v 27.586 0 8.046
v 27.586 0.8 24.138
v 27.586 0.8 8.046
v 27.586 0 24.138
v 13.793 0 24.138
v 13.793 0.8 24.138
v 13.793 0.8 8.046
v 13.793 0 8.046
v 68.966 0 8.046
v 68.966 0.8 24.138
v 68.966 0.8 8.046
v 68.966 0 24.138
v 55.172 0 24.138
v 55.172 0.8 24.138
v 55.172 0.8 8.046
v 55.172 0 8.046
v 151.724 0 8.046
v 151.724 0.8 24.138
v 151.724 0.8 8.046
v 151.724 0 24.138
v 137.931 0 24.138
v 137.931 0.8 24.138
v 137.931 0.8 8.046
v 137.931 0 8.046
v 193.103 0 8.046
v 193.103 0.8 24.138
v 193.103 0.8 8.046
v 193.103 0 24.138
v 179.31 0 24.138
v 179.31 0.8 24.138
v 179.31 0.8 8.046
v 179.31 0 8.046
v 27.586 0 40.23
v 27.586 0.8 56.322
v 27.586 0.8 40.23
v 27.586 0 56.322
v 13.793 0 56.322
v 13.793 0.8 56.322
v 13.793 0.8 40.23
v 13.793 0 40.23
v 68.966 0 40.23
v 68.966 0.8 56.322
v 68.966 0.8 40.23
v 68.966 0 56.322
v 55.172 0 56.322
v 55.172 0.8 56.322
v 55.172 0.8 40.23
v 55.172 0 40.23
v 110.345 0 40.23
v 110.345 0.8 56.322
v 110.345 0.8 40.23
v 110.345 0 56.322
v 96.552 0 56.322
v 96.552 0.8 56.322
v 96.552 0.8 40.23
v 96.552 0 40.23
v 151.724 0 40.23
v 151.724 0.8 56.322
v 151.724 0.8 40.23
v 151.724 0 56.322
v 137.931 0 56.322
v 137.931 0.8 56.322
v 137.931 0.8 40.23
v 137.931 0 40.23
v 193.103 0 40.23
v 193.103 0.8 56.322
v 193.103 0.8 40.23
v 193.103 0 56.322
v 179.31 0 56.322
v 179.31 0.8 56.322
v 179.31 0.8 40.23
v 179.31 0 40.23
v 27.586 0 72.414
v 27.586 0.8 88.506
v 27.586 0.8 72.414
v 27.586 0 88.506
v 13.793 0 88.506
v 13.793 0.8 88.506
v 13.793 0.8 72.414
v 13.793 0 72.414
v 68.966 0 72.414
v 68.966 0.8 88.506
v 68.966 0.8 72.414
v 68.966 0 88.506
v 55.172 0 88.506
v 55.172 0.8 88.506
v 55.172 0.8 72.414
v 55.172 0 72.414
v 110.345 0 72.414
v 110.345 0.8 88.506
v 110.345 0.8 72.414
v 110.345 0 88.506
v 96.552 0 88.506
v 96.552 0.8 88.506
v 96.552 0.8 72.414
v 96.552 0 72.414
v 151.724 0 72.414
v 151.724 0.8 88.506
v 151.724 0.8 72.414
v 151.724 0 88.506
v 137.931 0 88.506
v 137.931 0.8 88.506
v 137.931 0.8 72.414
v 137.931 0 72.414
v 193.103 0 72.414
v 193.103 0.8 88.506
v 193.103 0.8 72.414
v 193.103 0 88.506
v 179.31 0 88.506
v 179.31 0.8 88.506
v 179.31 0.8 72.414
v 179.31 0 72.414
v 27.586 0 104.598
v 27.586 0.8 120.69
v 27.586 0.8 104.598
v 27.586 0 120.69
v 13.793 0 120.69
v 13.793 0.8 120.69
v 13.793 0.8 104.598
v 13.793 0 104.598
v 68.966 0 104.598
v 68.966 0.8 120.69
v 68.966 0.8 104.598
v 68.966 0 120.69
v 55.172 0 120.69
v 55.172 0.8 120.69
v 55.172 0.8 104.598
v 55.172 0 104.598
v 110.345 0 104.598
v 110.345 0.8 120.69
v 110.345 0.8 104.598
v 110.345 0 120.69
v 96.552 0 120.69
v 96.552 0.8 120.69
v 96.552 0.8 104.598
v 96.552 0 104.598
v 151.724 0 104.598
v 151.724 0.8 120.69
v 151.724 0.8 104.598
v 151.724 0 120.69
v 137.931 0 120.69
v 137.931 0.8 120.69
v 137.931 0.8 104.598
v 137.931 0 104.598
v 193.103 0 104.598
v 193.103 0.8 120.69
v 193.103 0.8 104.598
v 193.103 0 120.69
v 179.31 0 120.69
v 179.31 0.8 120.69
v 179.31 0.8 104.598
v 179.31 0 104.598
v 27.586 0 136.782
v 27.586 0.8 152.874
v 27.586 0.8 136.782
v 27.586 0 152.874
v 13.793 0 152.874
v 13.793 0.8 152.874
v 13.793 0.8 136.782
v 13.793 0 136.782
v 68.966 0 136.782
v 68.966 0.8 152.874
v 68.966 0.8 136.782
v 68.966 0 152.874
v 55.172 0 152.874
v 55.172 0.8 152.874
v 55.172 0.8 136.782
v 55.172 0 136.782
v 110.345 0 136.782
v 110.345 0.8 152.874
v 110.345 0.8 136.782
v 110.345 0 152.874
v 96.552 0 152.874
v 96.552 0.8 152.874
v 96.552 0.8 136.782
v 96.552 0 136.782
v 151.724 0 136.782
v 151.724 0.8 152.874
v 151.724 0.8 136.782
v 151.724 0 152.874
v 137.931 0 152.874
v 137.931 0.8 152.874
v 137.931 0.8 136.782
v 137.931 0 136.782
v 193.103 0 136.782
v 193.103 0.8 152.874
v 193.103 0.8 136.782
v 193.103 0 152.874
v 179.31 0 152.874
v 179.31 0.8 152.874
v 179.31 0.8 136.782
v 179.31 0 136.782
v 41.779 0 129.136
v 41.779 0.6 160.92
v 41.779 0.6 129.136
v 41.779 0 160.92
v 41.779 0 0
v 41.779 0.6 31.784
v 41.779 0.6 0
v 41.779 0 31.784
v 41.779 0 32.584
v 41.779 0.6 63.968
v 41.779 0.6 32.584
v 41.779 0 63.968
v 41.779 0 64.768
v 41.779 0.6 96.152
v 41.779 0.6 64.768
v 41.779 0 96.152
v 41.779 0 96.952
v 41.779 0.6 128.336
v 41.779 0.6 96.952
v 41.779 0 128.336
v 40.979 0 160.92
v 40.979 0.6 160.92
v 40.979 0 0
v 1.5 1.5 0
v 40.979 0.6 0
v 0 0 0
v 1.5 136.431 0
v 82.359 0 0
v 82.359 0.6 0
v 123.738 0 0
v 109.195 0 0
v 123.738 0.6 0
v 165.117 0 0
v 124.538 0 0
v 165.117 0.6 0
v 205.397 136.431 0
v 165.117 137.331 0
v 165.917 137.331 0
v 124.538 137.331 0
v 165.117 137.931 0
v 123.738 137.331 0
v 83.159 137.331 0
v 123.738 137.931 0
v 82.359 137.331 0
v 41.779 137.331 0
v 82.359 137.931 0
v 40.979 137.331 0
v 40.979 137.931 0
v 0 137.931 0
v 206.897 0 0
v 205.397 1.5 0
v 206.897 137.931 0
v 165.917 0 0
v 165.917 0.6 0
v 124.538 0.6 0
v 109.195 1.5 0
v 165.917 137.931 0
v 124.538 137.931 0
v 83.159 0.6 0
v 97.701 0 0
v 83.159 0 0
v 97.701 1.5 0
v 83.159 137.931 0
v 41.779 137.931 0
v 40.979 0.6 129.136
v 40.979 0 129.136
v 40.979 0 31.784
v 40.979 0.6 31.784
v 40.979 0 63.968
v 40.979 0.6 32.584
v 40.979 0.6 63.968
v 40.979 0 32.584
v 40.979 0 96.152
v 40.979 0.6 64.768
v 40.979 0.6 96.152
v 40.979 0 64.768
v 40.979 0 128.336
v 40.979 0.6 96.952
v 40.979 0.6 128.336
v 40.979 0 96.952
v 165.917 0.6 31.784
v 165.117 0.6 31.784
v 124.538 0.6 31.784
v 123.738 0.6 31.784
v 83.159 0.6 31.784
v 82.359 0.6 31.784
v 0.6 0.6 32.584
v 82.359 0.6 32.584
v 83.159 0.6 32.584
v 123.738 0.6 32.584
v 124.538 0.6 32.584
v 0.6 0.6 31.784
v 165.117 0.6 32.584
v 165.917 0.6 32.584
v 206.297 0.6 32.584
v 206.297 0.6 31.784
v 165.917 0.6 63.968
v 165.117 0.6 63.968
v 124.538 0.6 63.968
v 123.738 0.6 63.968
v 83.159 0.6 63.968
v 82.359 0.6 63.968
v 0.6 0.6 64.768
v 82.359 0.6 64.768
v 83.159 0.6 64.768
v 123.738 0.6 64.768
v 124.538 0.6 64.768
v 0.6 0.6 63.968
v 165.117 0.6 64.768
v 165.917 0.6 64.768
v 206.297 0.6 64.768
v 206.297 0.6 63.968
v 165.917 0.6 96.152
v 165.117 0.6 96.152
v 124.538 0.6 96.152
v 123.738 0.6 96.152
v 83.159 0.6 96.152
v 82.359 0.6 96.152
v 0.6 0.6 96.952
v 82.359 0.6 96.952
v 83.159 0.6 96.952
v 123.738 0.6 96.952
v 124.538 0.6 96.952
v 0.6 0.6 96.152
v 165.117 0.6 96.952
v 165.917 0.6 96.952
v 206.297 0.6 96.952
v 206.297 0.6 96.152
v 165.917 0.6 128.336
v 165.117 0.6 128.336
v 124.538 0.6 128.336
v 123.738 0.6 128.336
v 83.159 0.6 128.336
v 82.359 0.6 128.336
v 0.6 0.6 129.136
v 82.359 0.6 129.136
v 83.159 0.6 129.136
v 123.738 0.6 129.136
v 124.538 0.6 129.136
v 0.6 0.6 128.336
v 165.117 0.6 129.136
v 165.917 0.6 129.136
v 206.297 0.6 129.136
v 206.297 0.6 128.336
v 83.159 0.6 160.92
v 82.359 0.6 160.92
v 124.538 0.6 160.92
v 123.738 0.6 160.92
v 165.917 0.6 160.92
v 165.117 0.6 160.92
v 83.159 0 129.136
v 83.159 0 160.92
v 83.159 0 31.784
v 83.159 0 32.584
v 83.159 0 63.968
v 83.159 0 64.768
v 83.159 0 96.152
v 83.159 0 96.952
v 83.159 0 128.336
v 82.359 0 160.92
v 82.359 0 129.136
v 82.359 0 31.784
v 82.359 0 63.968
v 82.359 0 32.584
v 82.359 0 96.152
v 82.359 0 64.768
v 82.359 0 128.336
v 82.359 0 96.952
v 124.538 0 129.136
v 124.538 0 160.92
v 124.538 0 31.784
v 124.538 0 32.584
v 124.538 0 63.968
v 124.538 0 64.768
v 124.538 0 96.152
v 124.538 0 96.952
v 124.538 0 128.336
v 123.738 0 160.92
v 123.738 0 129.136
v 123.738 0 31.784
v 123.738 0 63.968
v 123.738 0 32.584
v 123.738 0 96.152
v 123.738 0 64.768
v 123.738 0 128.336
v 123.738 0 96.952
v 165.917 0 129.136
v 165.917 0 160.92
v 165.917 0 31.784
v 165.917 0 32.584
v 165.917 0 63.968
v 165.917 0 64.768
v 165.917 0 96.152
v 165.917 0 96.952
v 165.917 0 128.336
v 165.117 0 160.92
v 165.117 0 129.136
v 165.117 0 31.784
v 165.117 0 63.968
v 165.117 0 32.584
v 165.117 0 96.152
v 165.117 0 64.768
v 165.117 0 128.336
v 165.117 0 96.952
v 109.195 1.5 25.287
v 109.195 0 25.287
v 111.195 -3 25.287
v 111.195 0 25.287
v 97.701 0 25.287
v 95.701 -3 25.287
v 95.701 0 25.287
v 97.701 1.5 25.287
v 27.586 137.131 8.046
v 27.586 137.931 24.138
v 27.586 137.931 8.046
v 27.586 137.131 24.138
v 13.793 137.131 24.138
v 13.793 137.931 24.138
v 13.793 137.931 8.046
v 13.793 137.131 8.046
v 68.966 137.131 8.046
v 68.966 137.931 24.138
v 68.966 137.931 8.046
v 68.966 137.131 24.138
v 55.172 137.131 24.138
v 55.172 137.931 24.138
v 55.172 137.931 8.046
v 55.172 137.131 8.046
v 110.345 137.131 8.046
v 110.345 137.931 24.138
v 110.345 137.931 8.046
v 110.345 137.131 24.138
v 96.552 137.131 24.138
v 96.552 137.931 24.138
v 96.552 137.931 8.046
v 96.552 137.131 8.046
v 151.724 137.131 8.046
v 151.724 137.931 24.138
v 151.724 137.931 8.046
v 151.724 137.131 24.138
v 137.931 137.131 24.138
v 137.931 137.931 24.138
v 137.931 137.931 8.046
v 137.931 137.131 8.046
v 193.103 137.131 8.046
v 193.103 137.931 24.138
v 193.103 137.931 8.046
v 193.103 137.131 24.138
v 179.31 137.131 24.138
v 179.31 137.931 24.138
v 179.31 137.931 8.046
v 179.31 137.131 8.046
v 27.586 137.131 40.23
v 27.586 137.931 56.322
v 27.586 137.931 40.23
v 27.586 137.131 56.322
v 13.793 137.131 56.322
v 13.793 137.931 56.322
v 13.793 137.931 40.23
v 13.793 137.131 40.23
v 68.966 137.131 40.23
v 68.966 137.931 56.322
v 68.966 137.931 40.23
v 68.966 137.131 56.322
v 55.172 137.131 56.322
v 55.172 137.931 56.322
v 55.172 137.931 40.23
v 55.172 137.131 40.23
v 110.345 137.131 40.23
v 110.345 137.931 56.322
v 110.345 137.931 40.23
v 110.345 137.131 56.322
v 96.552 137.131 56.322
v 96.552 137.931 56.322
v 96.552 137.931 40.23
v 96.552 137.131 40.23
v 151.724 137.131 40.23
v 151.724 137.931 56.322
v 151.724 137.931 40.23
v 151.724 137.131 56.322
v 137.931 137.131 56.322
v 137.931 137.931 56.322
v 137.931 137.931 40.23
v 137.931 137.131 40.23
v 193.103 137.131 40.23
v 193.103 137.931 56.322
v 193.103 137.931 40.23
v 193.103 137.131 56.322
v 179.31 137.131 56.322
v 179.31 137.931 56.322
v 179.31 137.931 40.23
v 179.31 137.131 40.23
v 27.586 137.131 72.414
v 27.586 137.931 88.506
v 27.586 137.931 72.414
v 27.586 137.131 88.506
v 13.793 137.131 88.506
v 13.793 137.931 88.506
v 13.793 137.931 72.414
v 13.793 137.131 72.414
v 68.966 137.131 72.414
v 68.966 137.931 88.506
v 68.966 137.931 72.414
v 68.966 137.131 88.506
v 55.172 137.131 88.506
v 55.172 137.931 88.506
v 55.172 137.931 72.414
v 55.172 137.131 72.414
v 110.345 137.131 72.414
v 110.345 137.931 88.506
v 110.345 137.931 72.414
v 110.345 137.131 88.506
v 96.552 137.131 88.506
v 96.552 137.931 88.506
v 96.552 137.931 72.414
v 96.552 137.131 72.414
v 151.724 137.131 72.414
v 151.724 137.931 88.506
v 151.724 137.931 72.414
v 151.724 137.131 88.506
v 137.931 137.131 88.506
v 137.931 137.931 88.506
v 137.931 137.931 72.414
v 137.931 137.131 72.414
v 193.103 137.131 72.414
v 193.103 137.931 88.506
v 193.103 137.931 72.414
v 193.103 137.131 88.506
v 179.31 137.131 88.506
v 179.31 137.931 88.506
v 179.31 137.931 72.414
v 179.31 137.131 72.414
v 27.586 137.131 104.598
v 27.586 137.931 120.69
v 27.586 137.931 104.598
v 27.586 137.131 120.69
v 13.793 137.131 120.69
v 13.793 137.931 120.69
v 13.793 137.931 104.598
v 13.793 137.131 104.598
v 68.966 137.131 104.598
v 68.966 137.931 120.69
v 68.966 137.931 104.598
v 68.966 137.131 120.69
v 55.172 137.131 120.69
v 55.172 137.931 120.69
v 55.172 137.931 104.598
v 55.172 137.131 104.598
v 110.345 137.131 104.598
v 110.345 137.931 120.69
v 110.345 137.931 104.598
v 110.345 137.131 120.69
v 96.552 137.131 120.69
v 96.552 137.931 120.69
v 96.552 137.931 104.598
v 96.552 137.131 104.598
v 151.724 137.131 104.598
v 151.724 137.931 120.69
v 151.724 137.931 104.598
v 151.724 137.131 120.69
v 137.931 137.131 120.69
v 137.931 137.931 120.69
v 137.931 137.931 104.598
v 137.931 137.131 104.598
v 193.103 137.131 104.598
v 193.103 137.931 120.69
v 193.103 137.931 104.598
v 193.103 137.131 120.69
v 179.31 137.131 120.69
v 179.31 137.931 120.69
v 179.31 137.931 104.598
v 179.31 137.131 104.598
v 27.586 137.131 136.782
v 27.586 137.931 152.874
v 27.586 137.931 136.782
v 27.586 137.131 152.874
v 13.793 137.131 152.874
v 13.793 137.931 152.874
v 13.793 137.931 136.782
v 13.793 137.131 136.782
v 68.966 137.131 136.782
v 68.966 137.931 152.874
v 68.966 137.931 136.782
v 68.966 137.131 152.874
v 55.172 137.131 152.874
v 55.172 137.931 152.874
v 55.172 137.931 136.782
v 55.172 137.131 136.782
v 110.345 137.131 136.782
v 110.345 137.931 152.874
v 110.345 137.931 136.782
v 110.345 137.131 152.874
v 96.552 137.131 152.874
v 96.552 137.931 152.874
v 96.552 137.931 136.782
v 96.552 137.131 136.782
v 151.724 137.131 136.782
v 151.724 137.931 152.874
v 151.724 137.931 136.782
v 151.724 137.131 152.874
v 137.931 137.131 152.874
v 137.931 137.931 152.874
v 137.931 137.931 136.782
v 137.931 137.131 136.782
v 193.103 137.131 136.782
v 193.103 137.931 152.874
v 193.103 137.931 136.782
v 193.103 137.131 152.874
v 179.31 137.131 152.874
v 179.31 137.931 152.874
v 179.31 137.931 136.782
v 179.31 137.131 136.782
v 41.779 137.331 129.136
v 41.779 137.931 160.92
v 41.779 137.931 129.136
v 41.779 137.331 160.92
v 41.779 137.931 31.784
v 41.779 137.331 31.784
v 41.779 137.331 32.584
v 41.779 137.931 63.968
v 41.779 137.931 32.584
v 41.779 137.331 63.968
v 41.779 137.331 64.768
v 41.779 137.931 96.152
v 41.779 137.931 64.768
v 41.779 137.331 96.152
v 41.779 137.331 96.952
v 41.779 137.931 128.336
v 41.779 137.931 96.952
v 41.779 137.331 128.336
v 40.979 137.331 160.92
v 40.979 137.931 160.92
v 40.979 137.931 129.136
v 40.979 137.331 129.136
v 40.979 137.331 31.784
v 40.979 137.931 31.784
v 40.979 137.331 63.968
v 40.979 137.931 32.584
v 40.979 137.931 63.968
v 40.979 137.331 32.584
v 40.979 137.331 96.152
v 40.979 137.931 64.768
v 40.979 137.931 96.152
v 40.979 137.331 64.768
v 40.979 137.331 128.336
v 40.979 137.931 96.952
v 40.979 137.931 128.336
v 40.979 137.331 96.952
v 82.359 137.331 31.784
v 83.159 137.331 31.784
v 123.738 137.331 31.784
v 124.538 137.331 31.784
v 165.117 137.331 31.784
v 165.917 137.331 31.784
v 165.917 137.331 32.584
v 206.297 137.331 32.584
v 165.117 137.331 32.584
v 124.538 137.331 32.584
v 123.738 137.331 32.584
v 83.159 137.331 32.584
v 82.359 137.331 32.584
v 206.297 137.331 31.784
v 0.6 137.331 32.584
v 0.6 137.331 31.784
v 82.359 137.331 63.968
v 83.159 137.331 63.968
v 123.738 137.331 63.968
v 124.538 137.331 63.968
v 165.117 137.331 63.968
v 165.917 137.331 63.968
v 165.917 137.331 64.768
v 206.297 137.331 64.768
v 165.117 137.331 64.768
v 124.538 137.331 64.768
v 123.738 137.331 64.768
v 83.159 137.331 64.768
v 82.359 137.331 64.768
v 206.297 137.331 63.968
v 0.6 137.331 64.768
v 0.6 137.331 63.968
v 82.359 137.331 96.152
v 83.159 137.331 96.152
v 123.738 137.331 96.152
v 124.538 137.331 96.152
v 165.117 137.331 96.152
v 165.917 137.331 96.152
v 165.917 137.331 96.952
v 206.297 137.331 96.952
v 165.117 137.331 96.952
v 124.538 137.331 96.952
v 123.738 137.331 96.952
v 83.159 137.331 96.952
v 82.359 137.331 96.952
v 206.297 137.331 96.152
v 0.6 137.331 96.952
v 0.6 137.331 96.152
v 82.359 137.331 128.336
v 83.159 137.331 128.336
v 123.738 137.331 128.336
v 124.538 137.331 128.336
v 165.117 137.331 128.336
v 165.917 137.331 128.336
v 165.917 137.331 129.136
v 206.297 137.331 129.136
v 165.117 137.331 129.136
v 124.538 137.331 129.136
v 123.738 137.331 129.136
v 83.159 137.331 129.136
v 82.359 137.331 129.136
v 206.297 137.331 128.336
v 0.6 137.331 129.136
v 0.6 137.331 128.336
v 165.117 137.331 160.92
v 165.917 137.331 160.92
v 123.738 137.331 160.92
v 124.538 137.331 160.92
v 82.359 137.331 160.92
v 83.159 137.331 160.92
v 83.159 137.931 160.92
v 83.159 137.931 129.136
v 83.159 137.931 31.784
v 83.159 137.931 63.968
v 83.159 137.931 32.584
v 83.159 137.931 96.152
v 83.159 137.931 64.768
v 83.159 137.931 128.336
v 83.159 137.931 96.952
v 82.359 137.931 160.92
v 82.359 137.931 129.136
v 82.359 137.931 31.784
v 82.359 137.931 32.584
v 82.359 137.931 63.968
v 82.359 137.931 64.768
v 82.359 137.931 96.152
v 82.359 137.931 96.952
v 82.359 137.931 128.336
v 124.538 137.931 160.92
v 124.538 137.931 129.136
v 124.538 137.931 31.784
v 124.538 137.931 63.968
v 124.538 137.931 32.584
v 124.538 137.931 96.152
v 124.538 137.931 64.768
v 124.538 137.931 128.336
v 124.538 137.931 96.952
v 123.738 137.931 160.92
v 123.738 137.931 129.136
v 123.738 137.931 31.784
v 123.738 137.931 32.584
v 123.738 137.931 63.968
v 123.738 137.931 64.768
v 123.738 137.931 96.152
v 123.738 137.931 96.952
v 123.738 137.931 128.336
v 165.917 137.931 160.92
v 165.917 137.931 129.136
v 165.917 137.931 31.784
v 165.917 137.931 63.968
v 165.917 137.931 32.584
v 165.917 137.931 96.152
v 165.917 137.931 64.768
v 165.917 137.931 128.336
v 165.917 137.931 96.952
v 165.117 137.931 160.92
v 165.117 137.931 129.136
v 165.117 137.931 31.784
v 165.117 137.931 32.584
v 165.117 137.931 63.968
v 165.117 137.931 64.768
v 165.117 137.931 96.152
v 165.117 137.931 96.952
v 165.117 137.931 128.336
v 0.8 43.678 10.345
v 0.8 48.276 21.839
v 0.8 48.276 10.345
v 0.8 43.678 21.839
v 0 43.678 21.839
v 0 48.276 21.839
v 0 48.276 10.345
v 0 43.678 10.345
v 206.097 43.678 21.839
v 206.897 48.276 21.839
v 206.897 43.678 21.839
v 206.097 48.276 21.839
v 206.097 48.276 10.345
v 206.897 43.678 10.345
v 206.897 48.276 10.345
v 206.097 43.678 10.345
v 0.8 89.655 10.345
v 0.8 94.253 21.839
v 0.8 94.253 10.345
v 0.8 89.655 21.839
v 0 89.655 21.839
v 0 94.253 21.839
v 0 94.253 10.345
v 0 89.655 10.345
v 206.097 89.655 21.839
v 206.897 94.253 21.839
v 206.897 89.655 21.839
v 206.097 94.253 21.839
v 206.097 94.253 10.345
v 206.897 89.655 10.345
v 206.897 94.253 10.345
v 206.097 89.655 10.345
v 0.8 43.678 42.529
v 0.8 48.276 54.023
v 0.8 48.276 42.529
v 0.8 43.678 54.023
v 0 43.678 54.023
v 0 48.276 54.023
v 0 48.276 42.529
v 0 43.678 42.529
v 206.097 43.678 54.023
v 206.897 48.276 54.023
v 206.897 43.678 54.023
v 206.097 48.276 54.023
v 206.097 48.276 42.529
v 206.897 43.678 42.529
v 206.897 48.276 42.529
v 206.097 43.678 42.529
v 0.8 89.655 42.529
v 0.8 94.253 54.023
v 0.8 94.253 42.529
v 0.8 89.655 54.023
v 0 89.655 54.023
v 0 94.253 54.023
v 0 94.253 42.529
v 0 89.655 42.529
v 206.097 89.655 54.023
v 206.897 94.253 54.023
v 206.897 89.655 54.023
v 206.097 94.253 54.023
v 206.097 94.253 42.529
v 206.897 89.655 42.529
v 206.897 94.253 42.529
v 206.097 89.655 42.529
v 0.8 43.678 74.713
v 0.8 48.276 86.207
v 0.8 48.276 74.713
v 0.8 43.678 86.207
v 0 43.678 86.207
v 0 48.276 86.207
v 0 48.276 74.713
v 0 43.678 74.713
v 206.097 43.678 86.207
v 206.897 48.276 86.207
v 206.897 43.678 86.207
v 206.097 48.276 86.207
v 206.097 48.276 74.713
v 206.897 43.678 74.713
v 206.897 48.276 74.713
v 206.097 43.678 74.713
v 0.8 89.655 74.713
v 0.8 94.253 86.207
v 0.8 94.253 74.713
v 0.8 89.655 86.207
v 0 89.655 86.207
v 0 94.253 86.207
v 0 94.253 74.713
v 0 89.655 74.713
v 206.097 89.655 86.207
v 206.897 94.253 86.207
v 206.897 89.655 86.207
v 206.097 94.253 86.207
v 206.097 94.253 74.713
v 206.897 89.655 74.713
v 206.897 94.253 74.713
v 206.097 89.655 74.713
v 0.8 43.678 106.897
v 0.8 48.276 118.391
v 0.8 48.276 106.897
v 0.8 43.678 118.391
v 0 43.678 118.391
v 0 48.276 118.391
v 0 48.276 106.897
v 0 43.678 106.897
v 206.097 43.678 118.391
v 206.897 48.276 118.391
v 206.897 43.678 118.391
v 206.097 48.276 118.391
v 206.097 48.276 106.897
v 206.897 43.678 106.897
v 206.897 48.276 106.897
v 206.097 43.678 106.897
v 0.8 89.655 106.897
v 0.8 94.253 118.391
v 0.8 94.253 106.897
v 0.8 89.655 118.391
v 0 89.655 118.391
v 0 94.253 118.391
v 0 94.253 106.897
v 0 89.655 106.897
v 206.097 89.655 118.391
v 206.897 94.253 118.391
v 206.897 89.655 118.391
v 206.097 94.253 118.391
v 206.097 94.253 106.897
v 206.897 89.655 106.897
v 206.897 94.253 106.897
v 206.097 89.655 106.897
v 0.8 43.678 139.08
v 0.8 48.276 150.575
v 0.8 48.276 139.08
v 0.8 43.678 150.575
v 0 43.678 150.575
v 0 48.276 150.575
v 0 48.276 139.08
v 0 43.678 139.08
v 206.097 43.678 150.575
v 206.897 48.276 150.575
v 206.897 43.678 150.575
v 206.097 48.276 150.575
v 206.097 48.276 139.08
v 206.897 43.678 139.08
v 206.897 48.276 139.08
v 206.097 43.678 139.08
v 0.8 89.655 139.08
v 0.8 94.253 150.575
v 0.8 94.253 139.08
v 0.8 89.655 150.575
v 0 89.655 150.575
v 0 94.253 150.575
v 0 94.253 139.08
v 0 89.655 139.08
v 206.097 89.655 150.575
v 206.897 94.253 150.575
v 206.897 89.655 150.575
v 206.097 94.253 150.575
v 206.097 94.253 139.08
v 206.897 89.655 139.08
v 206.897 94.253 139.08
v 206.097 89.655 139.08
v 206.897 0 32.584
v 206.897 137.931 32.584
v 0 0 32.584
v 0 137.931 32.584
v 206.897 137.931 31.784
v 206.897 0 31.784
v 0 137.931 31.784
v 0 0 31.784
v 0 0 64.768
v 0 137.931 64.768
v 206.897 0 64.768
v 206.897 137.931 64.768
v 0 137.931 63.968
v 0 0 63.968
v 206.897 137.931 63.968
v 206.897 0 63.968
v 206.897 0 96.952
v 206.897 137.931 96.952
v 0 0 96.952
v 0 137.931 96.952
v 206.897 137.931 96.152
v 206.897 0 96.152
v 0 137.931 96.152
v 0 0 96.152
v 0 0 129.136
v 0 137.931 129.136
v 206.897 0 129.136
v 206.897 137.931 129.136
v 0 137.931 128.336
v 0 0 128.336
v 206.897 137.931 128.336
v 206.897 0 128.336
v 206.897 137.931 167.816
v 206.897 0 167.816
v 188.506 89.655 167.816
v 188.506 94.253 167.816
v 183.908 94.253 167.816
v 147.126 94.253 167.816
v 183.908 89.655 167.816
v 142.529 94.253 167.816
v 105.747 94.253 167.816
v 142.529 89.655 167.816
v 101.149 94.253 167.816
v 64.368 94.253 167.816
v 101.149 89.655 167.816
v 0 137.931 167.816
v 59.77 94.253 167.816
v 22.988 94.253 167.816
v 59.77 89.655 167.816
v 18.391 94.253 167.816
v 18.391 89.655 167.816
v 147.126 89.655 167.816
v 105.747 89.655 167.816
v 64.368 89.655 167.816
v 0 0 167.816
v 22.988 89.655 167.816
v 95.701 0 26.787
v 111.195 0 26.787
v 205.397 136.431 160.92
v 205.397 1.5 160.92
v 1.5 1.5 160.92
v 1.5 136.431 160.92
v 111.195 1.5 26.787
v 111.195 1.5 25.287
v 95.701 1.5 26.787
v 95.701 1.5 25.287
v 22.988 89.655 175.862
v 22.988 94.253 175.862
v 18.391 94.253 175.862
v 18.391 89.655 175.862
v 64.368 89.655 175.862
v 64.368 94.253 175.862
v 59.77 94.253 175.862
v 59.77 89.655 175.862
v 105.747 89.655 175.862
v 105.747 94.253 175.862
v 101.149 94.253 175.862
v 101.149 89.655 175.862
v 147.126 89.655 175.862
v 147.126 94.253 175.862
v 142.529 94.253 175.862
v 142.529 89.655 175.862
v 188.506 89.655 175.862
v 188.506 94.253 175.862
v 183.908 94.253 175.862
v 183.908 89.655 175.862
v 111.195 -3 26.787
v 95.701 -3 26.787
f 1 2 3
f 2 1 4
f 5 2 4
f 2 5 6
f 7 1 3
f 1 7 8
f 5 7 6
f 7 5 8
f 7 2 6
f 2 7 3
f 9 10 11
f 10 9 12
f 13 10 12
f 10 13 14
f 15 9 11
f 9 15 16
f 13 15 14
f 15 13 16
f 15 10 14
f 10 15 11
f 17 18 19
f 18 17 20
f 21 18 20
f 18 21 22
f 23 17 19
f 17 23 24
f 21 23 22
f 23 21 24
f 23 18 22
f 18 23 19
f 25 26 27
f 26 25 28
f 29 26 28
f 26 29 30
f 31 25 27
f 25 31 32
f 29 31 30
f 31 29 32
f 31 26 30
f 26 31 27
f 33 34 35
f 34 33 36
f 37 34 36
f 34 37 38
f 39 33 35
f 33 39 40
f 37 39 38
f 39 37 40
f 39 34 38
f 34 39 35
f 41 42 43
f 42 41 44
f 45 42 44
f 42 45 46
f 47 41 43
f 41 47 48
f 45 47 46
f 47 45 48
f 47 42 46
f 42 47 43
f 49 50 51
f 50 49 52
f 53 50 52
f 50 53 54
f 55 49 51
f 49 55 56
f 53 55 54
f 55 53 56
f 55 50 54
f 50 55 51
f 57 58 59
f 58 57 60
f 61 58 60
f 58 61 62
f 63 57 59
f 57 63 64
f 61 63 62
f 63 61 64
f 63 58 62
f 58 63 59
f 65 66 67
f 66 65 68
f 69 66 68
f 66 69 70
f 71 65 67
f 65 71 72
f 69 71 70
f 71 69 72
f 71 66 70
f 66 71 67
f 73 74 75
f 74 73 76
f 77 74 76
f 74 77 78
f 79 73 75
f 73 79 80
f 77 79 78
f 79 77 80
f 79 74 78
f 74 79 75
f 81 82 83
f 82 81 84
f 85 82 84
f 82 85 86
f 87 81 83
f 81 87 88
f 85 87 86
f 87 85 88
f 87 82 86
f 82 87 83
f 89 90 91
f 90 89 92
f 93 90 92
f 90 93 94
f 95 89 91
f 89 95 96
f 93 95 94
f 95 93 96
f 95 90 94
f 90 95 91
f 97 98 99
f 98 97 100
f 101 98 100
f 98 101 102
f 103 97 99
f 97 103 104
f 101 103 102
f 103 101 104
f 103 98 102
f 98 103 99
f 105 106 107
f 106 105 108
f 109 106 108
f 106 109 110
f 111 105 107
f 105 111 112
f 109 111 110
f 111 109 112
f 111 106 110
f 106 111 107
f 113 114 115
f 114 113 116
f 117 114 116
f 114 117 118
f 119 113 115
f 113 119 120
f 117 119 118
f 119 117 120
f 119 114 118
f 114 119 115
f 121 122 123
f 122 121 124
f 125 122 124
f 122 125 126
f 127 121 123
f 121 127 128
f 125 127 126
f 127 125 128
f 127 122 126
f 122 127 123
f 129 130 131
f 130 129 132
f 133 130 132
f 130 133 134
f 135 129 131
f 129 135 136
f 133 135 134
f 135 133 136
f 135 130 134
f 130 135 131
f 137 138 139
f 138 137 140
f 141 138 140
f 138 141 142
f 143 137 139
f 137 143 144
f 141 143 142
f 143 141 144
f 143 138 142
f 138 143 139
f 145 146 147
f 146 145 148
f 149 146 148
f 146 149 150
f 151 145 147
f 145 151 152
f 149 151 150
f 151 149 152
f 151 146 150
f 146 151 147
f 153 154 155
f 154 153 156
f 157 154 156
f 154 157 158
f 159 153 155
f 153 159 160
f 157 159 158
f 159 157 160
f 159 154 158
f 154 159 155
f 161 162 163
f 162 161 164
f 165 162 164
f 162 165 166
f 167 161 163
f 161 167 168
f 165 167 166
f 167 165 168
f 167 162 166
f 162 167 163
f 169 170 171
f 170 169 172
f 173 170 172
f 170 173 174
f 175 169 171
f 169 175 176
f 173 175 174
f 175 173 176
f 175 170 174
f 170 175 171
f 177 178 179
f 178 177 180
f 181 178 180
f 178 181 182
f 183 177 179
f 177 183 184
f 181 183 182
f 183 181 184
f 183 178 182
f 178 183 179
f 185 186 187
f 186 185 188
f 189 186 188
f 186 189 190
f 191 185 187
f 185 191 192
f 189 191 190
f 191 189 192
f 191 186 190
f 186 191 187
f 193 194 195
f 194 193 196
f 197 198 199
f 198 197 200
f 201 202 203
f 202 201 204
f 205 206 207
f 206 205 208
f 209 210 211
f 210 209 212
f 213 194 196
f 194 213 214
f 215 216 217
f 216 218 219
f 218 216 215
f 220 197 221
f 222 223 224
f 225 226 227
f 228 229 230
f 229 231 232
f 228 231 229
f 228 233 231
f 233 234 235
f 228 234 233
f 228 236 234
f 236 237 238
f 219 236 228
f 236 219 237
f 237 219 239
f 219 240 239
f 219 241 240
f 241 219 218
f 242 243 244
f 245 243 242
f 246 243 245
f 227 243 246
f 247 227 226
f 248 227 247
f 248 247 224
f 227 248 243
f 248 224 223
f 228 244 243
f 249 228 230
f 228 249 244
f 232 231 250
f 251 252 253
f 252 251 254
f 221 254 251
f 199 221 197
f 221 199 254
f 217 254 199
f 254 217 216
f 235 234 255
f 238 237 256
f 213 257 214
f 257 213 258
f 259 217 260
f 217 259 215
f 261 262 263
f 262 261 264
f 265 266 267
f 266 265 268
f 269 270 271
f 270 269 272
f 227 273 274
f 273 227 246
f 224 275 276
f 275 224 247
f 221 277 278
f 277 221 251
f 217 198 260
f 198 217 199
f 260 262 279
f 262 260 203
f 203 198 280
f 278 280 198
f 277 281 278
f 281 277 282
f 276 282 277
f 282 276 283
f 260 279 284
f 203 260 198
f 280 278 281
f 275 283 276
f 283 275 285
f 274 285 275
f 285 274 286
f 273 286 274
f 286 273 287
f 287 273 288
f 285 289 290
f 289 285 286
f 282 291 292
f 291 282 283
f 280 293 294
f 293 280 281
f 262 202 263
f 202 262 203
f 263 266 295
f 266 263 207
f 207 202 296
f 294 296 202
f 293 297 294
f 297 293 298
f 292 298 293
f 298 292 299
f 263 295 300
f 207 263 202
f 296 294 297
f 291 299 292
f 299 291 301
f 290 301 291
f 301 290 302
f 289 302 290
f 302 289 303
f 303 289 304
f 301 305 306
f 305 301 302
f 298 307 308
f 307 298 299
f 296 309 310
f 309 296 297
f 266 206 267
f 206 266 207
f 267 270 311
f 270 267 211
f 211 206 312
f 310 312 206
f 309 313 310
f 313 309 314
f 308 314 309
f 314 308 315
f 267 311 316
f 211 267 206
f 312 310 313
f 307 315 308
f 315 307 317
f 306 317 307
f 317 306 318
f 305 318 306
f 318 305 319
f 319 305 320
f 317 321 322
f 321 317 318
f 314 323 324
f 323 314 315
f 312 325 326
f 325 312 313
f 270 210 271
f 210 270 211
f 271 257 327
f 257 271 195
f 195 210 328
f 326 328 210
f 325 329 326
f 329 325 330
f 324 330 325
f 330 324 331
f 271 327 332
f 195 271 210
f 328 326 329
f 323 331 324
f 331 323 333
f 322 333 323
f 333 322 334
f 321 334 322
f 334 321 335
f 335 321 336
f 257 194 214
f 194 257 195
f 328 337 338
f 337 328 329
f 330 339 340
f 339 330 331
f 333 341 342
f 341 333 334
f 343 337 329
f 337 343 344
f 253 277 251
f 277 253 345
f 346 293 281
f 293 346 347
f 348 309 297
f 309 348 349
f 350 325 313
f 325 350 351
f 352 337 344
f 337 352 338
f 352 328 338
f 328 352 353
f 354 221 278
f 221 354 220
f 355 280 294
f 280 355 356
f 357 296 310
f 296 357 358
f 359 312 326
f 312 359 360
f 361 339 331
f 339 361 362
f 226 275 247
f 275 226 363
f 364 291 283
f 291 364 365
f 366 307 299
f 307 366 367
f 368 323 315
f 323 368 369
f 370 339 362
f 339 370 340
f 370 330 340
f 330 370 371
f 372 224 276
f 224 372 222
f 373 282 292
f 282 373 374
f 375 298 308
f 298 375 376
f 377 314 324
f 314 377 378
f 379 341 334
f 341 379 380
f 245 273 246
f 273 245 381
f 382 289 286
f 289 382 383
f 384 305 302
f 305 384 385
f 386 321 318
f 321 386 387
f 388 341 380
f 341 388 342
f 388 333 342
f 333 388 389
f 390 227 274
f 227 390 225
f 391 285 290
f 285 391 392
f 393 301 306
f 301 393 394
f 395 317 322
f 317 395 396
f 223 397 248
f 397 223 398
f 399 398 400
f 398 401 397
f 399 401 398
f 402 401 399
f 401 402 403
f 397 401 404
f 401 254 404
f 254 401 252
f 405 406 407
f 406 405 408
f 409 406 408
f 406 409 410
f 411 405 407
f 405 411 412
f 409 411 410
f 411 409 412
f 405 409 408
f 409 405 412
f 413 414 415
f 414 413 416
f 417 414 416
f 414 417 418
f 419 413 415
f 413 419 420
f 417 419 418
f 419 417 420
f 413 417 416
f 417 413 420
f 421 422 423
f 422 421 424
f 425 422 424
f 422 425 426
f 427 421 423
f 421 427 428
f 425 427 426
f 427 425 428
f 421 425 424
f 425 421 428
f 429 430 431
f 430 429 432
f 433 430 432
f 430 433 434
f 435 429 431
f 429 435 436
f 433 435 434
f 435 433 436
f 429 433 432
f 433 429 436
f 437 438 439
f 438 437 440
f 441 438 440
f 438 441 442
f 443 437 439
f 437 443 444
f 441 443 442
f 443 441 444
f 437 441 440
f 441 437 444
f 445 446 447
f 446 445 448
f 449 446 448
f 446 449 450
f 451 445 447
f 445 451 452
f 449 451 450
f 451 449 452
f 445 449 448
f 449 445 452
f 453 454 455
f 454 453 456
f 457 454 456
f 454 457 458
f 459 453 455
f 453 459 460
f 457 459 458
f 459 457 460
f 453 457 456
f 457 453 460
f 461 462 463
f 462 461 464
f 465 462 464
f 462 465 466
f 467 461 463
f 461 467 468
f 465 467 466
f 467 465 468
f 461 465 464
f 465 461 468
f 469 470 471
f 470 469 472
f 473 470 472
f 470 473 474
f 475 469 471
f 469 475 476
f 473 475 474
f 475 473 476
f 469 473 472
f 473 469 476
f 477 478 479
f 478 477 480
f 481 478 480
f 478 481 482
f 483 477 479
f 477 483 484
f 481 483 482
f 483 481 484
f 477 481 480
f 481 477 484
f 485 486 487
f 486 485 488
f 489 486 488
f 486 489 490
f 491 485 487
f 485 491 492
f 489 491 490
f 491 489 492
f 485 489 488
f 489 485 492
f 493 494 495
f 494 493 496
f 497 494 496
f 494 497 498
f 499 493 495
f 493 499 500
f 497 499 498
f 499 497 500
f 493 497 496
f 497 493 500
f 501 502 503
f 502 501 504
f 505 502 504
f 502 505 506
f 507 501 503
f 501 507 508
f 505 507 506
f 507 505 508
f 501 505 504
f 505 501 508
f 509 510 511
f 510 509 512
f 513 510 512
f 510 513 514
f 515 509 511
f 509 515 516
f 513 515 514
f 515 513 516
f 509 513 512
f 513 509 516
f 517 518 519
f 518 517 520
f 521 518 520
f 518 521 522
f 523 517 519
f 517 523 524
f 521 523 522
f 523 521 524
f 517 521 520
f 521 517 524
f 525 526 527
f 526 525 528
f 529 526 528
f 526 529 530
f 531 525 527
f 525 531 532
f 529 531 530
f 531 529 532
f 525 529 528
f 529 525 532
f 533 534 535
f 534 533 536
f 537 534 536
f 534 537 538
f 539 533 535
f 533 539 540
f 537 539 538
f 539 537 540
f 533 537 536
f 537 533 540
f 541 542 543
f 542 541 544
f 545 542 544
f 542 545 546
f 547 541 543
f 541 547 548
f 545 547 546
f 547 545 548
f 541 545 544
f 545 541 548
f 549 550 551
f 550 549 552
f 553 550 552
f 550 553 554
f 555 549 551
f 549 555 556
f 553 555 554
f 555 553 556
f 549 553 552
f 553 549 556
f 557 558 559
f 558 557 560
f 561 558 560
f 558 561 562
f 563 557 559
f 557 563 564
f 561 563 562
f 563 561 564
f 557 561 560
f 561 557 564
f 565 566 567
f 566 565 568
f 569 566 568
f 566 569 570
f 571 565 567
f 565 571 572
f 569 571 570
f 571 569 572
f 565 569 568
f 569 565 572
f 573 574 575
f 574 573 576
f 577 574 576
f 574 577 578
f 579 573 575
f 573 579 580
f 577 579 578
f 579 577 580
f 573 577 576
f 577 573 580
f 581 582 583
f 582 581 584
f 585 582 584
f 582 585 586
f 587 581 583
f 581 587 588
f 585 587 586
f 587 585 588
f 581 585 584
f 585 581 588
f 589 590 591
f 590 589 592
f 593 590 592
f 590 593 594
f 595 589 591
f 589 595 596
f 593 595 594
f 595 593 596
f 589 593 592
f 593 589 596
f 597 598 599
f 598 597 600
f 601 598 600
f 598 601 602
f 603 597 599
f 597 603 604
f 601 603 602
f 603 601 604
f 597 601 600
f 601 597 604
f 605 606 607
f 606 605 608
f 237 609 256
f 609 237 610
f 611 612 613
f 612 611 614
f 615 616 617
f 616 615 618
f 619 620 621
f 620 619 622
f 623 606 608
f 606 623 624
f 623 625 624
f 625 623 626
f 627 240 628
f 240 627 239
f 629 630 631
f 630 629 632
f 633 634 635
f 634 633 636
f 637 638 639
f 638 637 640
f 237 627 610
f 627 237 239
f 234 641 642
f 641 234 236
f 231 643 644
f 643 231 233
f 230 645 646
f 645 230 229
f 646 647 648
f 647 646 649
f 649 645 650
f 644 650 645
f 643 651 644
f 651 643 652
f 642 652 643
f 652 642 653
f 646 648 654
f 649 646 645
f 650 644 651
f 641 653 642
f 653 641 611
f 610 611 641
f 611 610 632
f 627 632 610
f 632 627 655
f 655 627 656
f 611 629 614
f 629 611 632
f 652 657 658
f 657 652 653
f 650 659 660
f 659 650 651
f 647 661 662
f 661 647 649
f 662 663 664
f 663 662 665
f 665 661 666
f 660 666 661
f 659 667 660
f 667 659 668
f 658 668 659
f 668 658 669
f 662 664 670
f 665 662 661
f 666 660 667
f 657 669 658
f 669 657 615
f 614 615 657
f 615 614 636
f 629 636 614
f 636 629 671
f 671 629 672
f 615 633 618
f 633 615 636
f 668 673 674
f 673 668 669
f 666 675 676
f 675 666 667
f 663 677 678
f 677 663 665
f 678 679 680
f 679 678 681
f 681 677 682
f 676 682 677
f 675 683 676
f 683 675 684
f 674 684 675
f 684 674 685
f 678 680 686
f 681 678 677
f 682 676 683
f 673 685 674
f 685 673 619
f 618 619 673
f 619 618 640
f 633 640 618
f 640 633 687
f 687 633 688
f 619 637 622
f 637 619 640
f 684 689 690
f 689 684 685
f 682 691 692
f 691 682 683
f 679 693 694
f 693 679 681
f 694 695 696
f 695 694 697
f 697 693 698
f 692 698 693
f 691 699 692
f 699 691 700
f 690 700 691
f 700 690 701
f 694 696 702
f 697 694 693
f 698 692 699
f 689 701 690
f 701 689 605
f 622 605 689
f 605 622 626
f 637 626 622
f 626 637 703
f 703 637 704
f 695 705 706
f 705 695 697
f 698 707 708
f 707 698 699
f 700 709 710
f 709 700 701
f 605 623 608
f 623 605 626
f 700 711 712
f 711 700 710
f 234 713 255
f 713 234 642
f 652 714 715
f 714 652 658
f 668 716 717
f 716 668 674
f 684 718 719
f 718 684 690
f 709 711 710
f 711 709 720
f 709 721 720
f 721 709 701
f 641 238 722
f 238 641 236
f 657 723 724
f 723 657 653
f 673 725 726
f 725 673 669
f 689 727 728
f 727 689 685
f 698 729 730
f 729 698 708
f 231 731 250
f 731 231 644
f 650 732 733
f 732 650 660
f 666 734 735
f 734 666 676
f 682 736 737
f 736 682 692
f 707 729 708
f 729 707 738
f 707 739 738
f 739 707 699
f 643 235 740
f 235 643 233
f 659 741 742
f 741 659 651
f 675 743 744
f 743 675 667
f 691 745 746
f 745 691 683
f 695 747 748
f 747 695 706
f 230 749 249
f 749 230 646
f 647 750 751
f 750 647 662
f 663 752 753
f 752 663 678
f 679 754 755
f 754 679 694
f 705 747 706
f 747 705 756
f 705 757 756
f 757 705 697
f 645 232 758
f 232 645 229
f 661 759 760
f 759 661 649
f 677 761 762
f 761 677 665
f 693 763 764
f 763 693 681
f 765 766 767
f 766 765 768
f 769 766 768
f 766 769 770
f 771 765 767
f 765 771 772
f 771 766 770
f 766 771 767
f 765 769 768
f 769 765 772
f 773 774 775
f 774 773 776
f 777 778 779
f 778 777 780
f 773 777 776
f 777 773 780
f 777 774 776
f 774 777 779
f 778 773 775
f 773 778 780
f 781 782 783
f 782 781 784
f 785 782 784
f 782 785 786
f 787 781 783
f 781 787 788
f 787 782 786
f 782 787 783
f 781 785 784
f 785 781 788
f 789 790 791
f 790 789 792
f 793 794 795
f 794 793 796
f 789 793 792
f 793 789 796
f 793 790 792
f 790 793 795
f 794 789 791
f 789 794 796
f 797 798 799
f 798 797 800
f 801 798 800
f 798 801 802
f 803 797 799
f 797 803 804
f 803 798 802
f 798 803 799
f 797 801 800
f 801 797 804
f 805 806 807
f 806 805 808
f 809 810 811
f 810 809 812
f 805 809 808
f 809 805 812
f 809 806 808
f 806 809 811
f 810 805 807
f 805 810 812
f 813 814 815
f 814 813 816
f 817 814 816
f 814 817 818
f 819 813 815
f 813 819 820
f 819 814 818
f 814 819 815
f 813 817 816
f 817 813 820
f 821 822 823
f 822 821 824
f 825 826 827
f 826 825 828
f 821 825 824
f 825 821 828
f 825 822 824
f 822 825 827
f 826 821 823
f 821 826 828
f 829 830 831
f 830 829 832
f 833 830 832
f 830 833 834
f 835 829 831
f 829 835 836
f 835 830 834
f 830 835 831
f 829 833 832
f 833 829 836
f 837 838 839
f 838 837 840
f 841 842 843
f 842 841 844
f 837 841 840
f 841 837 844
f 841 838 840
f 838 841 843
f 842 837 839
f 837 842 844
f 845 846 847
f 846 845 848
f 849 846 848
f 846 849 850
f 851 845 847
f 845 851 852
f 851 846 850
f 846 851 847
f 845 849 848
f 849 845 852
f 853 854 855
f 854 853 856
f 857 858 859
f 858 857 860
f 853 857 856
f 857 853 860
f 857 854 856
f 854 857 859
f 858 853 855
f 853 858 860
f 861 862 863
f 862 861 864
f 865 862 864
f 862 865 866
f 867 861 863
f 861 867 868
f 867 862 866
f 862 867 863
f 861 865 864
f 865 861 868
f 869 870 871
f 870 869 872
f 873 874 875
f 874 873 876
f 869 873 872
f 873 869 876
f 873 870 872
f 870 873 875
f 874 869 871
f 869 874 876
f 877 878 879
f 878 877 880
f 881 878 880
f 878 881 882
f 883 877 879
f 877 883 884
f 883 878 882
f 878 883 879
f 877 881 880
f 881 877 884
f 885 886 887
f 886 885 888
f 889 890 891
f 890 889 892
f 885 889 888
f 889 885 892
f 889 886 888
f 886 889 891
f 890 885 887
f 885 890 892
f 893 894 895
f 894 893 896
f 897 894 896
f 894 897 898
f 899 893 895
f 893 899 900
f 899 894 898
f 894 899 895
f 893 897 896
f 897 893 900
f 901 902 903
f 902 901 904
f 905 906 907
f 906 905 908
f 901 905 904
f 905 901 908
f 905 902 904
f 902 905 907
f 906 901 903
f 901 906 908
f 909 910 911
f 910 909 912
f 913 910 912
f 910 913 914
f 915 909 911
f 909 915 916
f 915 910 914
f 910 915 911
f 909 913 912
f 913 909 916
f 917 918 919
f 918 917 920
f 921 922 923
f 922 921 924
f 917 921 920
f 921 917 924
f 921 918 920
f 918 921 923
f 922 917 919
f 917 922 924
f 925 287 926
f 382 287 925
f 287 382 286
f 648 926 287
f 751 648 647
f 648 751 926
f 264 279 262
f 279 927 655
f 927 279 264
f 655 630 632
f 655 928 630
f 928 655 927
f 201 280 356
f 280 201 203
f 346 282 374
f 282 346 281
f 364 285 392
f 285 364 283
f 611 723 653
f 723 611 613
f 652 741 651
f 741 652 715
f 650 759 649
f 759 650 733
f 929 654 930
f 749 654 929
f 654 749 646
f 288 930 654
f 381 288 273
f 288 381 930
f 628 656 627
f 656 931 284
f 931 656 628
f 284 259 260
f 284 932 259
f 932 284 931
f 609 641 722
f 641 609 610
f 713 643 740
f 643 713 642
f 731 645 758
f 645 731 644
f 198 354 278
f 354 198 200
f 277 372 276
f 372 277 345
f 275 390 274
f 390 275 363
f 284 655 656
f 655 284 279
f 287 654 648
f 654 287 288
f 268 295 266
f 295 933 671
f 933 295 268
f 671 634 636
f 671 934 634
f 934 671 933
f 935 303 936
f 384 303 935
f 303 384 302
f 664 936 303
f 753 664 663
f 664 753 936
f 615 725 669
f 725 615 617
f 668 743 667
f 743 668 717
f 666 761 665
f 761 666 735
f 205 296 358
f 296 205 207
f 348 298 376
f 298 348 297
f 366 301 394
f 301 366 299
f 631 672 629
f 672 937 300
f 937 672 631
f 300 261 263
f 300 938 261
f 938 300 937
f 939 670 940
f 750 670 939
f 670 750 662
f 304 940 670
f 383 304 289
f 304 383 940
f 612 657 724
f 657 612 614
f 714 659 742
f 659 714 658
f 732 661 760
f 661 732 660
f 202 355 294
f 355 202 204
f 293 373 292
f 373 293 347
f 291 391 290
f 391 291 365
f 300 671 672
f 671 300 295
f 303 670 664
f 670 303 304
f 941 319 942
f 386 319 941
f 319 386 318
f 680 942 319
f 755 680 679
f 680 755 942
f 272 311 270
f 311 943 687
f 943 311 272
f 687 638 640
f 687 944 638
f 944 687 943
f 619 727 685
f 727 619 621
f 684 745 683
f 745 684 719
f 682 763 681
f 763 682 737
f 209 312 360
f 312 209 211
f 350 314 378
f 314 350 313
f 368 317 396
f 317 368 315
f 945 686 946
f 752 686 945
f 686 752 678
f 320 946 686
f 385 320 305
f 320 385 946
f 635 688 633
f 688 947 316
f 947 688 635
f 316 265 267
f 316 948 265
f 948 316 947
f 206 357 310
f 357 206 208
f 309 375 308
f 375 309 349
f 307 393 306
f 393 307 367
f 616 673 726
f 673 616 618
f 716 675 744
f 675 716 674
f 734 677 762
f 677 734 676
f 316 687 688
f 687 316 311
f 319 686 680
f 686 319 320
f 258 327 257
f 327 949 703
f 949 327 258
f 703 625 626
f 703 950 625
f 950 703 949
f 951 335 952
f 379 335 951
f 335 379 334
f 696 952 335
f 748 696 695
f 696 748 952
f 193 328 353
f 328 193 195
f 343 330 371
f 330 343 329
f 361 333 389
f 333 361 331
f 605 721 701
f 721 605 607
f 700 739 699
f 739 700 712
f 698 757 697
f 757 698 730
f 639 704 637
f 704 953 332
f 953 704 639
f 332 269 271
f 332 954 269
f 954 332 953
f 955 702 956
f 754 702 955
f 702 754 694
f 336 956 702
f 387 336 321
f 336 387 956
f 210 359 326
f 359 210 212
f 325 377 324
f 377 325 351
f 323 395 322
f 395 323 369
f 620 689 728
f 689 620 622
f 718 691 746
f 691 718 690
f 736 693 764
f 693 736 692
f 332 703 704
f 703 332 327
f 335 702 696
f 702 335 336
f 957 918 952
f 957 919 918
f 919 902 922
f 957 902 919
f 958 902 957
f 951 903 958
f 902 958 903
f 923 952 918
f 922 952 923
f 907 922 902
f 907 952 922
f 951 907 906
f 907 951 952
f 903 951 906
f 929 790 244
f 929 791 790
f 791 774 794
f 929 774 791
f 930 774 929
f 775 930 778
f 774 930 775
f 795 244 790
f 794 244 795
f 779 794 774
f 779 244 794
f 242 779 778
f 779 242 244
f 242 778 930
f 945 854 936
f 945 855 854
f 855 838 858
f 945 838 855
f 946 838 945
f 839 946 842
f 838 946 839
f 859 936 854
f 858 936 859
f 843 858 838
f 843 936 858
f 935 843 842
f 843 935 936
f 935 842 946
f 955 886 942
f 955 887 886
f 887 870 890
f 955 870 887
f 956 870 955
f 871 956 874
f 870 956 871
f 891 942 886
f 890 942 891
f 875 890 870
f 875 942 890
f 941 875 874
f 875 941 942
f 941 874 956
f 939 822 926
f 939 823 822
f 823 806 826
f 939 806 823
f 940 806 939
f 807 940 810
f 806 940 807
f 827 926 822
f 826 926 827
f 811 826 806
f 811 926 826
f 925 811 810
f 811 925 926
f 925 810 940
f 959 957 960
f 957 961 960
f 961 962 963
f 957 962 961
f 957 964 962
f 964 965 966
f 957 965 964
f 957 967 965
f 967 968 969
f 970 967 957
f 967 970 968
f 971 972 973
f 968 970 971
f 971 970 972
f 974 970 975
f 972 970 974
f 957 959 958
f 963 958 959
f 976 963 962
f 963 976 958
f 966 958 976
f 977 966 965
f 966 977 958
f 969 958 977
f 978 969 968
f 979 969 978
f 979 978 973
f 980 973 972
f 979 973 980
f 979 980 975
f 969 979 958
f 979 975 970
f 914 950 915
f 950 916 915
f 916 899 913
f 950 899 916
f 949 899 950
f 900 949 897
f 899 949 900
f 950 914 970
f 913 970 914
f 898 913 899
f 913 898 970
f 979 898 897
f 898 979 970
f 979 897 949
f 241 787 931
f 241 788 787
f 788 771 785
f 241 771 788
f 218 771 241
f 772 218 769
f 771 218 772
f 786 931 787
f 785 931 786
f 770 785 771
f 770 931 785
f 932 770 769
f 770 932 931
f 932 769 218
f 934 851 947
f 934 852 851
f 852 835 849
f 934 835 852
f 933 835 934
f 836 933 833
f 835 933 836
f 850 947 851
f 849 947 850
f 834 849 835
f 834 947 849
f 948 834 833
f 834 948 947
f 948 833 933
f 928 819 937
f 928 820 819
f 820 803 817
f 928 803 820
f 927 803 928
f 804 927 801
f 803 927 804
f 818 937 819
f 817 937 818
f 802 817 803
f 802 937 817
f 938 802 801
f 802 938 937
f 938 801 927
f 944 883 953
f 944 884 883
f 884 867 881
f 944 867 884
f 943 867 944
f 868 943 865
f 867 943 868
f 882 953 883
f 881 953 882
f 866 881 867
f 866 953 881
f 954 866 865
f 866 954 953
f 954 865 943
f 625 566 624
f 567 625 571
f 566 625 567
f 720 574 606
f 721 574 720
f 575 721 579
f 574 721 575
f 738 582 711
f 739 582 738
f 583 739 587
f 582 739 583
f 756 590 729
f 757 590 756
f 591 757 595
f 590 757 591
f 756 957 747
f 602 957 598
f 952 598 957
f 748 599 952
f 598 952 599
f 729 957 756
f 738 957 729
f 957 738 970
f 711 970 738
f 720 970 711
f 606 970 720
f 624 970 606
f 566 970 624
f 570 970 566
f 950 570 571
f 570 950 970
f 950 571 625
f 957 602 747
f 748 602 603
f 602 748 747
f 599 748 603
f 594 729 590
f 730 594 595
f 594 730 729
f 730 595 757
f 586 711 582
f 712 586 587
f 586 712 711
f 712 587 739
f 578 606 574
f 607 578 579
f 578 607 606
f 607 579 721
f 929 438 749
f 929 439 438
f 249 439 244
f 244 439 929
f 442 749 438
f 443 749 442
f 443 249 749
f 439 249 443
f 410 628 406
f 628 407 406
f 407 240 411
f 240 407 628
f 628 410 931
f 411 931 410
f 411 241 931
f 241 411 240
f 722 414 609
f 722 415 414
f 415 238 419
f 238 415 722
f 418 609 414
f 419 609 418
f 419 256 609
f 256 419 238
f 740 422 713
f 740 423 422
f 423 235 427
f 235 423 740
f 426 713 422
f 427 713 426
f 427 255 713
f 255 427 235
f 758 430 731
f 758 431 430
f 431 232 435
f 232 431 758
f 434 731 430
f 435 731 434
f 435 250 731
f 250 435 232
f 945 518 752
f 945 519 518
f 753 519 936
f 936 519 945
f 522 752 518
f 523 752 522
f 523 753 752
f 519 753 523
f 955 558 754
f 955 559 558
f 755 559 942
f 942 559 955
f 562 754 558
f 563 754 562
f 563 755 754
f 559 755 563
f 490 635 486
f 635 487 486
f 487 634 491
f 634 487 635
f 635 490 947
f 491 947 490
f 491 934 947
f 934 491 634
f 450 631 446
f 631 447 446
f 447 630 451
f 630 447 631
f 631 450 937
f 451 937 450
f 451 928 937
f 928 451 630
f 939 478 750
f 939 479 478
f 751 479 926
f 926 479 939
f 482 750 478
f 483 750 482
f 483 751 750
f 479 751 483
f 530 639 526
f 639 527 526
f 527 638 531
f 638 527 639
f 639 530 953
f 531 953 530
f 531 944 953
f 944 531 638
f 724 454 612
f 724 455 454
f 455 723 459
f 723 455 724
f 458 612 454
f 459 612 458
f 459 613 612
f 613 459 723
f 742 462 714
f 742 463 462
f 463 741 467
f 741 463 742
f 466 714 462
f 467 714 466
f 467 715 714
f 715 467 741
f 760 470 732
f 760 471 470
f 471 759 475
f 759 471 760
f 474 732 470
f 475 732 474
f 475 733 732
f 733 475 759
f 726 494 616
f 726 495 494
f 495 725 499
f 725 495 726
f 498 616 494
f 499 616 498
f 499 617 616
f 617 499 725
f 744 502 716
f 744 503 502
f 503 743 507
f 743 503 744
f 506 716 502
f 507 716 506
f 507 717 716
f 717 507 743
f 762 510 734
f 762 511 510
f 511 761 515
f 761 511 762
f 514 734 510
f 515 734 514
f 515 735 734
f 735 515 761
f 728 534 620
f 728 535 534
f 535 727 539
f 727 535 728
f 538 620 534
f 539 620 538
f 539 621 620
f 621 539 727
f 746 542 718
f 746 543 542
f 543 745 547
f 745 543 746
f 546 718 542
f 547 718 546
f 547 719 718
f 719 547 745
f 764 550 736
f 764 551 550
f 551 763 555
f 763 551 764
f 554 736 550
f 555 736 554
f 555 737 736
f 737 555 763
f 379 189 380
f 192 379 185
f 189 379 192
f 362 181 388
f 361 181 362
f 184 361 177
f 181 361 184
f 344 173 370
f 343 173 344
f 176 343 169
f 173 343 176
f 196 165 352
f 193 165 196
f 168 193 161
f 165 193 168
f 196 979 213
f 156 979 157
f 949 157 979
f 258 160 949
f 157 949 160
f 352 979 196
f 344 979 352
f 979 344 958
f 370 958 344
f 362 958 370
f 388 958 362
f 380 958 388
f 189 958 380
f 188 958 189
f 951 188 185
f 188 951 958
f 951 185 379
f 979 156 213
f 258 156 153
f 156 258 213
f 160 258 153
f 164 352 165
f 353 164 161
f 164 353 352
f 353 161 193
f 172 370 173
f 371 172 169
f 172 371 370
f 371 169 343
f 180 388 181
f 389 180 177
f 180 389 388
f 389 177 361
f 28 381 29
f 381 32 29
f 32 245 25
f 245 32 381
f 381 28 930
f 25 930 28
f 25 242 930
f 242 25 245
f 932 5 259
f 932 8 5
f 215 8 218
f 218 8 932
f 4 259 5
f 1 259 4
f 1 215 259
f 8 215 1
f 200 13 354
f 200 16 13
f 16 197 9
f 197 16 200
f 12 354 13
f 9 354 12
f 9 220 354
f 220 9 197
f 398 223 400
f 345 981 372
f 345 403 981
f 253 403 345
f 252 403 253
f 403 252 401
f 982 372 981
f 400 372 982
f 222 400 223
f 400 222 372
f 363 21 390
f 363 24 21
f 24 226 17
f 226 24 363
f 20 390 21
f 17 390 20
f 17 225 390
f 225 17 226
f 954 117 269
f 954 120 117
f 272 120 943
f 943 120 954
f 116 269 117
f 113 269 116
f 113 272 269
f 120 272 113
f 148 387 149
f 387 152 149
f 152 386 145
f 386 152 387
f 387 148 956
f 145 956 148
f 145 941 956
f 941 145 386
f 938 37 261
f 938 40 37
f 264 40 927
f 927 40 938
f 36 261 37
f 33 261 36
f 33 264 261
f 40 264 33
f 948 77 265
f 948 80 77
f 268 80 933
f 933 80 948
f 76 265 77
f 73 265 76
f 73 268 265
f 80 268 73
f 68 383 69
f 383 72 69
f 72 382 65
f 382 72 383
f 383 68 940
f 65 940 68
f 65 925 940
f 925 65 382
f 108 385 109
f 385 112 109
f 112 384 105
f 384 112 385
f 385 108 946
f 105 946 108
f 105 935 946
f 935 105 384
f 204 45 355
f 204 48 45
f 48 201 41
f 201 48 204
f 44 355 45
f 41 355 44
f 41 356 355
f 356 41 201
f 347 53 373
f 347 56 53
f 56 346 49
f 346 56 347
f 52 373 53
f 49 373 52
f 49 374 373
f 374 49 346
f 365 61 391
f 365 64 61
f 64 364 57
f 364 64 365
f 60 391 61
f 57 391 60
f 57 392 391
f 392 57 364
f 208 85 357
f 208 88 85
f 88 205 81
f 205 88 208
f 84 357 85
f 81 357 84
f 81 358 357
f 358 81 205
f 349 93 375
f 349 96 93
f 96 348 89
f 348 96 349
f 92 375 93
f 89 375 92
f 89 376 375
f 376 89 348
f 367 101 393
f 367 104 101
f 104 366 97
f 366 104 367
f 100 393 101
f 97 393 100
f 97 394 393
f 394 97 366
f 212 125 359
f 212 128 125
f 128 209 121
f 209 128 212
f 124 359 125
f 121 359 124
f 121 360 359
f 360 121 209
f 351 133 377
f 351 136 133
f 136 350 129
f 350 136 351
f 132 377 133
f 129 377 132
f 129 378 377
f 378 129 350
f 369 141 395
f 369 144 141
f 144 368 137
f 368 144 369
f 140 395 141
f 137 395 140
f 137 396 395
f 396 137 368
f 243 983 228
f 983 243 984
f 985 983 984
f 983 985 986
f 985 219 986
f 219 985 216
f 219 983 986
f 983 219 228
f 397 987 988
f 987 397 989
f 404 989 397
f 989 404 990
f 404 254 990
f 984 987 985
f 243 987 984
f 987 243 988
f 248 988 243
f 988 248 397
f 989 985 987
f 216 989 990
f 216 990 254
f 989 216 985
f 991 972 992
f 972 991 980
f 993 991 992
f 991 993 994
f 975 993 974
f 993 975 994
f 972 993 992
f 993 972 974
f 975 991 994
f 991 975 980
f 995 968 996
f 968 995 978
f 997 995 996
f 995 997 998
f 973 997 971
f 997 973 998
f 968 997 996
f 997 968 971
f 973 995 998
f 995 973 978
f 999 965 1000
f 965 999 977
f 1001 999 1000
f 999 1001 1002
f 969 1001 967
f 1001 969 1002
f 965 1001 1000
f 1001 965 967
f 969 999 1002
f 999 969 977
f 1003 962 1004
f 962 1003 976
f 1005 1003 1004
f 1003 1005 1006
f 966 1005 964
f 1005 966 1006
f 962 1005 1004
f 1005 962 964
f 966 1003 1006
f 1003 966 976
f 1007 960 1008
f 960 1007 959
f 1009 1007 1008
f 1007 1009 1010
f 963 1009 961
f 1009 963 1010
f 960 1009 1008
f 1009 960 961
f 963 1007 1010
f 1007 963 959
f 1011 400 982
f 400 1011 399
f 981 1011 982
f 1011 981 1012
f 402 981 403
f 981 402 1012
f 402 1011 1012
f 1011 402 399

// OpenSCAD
/*
 * PROMPT: Eastern European prefabricated concrete panel apartment block in H0 scale
 * (1:87). Parametric: number of floors, real-world width, real-world depth. Flat roof
 * with parapet, regular grid of recessed windows on front and back facades, two narrow
 * stairwell windows per floor on gable ends, horizontal and vertical concrete panel joint
 * grooves, recessed entrance door at ground floor centre, canopy above entrance,
 * one rectangular concrete chimney shaft per bay on the roof.
 * FDM printable hollow shell open bottom, exterior detail only.
 */

$fn = 32;
S = 1 / 87;

// ── PARAMETERS ────────────────────────────────────────────────────────────────
floors     = 5;      // number of floors
bld_w_real = 18000;  // building width (real-world mm)
bld_d_real = 12000;  // building depth (real-world mm)

// ── FIXED DIMENSIONS (real-world mm → H0 mm) ──────────────────────────────────
wall_t     = 1.5;           // wall thickness, fixed for printability

floor_h    = 2800 * S;      // floor-to-floor height      32.2 mm
parapet_h  = 600  * S;      // parapet above roof line      6.9 mm
bay_w_real = 3600;          // apartment bay width, real mm

win_w      = 1200 * S;      // window width               13.8 mm
win_h      = 1400 * S;      // window height              16.1 mm
win_recess = 0.8;           // window recess depth

gwin_w     = 400  * S;      // gable stairwell window width  4.6 mm
gwin_h     = 1000 * S;      // gable stairwell window height 11.5 mm

door_w     = 1000 * S;      // entrance door width        11.5 mm
door_h     = 2200 * S;      // entrance door height       25.3 mm

balc_t     = 1.5;           // canopy slab thickness, fixed

chimney_w  = 400  * S;      // chimney shaft width        4.6 mm
chimney_d  = 400  * S;      // chimney shaft depth        4.6 mm
chimney_h  = 700  * S;      // chimney height above roof  8.0 mm

groove_w   = 0.8;           // panel joint groove width
groove_d   = 0.6;           // panel joint groove depth

// ── DERIVED ───────────────────────────────────────────────────────────────────
bld_w      = bld_w_real * S;
bld_d      = bld_d_real * S;
bld_h      = floors * floor_h;
n_bays     = floor(bld_w_real / bay_w_real);
bay_w      = bld_w / n_bays;
center_bay = floor(n_bays / 2);

// ── MODULES ───────────────────────────────────────────────────────────────────

module front_cuts() {
    // recessed windows — every bay every floor, skip entrance bay on ground floor
    for (f = [0 : floors - 1]) {
        for (b = [0 : n_bays - 1]) {
            if (!(f == 0 && b == center_bay)) {
                translate([b*bay_w + (bay_w - win_w)/2,
                           -1,
                           f*floor_h + (floor_h - win_h)/2])
                    cube([win_w, win_recess + 1, win_h]);
            }
        }
    }
    // entrance — through-wall opening
    translate([center_bay*bay_w + (bay_w - door_w)/2, -1, 0])
        cube([door_w, wall_t + 2, door_h]);
    // vertical panel joint grooves at bay boundaries
    for (b = [1 : n_bays - 1]) {
        translate([b*bay_w - groove_w/2, -1, 0])
            cube([groove_w, groove_d + 1, bld_h]);
    }
}

module back_cuts() {
    for (f = [0 : floors - 1]) {
        for (b = [0 : n_bays - 1]) {
            translate([b*bay_w + (bay_w - win_w)/2,
                       bld_d - win_recess,
                       f*floor_h + (floor_h - win_h)/2])
                cube([win_w, win_recess + 1, win_h]);
        }
    }
    for (b = [1 : n_bays - 1]) {
        translate([b*bay_w - groove_w/2, bld_d - groove_d, 0])
            cube([groove_w, groove_d + 1, bld_h]);
    }
}

module gable_cuts() {
    // two stairwell windows per floor per gable, at 1/3 and 2/3 of depth
    for (f = [0 : floors - 1]) {
        wz = f * floor_h + (floor_h - gwin_h) / 2;
        for (pos = [1/3, 2/3]) {
            wy = pos * bld_d - gwin_w / 2;
            translate([-1, wy, wz])
                cube([win_recess + 1, gwin_w, gwin_h]);           // left gable
            translate([bld_w - win_recess, wy, wz])
                cube([win_recess + 1, gwin_w, gwin_h]);           // right gable
        }
    }
}

module floor_grooves() {
    // horizontal panel joint grooves at every floor boundary, all four walls
    for (f = [1 : floors - 1]) {
        gz = f * floor_h - groove_w / 2;
        translate([0,              -1,              gz]) cube([bld_w,        groove_d + 1, groove_w]);
        translate([0,              bld_d - groove_d, gz]) cube([bld_w,       groove_d + 1, groove_w]);
        translate([-1,             0,              gz]) cube([groove_d + 1, bld_d,        groove_w]);
        translate([bld_w - groove_d, 0,            gz]) cube([groove_d + 1, bld_d,        groove_w]);
    }
}

module shell() {
    difference() {
        cube([bld_w, bld_d, bld_h + parapet_h]);
        // hollow interior, open bottom — stops at eave height so the
        // roof deck + parapet (bld_h → bld_h+parapet_h) stays solid
        translate([wall_t, wall_t, 0])
            cube([bld_w - 2*wall_t, bld_d - 2*wall_t, bld_h]);
        front_cuts();
        back_cuts();
        gable_cuts();
        floor_grooves();
    }
}

module entrance_canopy() {
    cw  = door_w + 4;
    cp  = 3;                // canopy projection
    cx  = center_bay * bay_w + (bay_w - door_w) / 2 - 2;
    translate([cx, -cp, door_h])
        cube([cw, cp + wall_t, balc_t]);
}

module chimneys() {
    // one shaft per bay, centred in X, placed at 2/3 depth from front
    roof_top = bld_h + parapet_h;
    cy = bld_d * 2/3 - chimney_d / 2;
    for (b = [0 : n_bays - 1]) {
        cx = b * bay_w + (bay_w - chimney_w) / 2;
        translate([cx, cy, roof_top])
            cube([chimney_w, chimney_d, chimney_h]);
    }
}

// ── ASSEMBLY ──────────────────────────────────────────────────────────────────
union() {
    shell();
    entrance_canopy();
    chimneys();
}
